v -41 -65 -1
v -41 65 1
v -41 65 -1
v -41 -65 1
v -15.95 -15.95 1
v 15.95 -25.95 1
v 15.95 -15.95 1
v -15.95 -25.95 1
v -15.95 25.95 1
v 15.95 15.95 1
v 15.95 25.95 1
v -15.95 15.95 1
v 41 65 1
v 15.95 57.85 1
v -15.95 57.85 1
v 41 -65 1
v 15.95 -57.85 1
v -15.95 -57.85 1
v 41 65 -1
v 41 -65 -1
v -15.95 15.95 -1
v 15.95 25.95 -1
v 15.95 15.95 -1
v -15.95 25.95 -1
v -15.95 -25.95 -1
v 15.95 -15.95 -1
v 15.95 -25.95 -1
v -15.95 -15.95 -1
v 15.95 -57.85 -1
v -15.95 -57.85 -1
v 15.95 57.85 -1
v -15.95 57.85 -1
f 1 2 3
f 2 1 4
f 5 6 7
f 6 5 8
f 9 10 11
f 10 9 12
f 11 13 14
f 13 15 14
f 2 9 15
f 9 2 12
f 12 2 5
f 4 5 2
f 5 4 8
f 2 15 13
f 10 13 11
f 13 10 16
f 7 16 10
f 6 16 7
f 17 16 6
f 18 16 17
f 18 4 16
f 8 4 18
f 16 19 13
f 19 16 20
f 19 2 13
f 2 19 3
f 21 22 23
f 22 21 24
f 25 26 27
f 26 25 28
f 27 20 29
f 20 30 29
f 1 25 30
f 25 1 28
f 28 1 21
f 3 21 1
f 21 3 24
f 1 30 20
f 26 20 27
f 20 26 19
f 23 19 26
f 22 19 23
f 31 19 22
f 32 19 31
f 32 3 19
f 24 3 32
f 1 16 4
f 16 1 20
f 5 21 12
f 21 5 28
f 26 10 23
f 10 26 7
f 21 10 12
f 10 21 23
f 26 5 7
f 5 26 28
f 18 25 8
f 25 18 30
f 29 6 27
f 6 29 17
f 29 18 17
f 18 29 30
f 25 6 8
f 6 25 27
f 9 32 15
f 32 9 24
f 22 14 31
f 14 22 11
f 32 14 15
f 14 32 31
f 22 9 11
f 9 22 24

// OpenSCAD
module semaphore_front(
    width,
    length,
    thickness,
    light_width,
    light_length,
    separation
) {
    difference() {
        cube([width, length, thickness], center=true);
        cube(
            [light_width, light_length, thickness * 2],
            center=true
        );
        translate([0, - light_width - separation, 0]) {
            cube(
                [light_width, light_length, thickness * 2],
                center=true
            );
        }
        translate([0, light_width + separation, 0]) {
            cube(
                [light_width, light_length, thickness * 2],
                center=true
            );
        }
    }
}

width = 82;
length = 130;
thickness = 2;
light_width = 31.90;
light_length = 31.90;
separation = 10;

semaphore_front(
    width,
    length,
    thickness,
    light_width,
    light_length,
    separation
);
